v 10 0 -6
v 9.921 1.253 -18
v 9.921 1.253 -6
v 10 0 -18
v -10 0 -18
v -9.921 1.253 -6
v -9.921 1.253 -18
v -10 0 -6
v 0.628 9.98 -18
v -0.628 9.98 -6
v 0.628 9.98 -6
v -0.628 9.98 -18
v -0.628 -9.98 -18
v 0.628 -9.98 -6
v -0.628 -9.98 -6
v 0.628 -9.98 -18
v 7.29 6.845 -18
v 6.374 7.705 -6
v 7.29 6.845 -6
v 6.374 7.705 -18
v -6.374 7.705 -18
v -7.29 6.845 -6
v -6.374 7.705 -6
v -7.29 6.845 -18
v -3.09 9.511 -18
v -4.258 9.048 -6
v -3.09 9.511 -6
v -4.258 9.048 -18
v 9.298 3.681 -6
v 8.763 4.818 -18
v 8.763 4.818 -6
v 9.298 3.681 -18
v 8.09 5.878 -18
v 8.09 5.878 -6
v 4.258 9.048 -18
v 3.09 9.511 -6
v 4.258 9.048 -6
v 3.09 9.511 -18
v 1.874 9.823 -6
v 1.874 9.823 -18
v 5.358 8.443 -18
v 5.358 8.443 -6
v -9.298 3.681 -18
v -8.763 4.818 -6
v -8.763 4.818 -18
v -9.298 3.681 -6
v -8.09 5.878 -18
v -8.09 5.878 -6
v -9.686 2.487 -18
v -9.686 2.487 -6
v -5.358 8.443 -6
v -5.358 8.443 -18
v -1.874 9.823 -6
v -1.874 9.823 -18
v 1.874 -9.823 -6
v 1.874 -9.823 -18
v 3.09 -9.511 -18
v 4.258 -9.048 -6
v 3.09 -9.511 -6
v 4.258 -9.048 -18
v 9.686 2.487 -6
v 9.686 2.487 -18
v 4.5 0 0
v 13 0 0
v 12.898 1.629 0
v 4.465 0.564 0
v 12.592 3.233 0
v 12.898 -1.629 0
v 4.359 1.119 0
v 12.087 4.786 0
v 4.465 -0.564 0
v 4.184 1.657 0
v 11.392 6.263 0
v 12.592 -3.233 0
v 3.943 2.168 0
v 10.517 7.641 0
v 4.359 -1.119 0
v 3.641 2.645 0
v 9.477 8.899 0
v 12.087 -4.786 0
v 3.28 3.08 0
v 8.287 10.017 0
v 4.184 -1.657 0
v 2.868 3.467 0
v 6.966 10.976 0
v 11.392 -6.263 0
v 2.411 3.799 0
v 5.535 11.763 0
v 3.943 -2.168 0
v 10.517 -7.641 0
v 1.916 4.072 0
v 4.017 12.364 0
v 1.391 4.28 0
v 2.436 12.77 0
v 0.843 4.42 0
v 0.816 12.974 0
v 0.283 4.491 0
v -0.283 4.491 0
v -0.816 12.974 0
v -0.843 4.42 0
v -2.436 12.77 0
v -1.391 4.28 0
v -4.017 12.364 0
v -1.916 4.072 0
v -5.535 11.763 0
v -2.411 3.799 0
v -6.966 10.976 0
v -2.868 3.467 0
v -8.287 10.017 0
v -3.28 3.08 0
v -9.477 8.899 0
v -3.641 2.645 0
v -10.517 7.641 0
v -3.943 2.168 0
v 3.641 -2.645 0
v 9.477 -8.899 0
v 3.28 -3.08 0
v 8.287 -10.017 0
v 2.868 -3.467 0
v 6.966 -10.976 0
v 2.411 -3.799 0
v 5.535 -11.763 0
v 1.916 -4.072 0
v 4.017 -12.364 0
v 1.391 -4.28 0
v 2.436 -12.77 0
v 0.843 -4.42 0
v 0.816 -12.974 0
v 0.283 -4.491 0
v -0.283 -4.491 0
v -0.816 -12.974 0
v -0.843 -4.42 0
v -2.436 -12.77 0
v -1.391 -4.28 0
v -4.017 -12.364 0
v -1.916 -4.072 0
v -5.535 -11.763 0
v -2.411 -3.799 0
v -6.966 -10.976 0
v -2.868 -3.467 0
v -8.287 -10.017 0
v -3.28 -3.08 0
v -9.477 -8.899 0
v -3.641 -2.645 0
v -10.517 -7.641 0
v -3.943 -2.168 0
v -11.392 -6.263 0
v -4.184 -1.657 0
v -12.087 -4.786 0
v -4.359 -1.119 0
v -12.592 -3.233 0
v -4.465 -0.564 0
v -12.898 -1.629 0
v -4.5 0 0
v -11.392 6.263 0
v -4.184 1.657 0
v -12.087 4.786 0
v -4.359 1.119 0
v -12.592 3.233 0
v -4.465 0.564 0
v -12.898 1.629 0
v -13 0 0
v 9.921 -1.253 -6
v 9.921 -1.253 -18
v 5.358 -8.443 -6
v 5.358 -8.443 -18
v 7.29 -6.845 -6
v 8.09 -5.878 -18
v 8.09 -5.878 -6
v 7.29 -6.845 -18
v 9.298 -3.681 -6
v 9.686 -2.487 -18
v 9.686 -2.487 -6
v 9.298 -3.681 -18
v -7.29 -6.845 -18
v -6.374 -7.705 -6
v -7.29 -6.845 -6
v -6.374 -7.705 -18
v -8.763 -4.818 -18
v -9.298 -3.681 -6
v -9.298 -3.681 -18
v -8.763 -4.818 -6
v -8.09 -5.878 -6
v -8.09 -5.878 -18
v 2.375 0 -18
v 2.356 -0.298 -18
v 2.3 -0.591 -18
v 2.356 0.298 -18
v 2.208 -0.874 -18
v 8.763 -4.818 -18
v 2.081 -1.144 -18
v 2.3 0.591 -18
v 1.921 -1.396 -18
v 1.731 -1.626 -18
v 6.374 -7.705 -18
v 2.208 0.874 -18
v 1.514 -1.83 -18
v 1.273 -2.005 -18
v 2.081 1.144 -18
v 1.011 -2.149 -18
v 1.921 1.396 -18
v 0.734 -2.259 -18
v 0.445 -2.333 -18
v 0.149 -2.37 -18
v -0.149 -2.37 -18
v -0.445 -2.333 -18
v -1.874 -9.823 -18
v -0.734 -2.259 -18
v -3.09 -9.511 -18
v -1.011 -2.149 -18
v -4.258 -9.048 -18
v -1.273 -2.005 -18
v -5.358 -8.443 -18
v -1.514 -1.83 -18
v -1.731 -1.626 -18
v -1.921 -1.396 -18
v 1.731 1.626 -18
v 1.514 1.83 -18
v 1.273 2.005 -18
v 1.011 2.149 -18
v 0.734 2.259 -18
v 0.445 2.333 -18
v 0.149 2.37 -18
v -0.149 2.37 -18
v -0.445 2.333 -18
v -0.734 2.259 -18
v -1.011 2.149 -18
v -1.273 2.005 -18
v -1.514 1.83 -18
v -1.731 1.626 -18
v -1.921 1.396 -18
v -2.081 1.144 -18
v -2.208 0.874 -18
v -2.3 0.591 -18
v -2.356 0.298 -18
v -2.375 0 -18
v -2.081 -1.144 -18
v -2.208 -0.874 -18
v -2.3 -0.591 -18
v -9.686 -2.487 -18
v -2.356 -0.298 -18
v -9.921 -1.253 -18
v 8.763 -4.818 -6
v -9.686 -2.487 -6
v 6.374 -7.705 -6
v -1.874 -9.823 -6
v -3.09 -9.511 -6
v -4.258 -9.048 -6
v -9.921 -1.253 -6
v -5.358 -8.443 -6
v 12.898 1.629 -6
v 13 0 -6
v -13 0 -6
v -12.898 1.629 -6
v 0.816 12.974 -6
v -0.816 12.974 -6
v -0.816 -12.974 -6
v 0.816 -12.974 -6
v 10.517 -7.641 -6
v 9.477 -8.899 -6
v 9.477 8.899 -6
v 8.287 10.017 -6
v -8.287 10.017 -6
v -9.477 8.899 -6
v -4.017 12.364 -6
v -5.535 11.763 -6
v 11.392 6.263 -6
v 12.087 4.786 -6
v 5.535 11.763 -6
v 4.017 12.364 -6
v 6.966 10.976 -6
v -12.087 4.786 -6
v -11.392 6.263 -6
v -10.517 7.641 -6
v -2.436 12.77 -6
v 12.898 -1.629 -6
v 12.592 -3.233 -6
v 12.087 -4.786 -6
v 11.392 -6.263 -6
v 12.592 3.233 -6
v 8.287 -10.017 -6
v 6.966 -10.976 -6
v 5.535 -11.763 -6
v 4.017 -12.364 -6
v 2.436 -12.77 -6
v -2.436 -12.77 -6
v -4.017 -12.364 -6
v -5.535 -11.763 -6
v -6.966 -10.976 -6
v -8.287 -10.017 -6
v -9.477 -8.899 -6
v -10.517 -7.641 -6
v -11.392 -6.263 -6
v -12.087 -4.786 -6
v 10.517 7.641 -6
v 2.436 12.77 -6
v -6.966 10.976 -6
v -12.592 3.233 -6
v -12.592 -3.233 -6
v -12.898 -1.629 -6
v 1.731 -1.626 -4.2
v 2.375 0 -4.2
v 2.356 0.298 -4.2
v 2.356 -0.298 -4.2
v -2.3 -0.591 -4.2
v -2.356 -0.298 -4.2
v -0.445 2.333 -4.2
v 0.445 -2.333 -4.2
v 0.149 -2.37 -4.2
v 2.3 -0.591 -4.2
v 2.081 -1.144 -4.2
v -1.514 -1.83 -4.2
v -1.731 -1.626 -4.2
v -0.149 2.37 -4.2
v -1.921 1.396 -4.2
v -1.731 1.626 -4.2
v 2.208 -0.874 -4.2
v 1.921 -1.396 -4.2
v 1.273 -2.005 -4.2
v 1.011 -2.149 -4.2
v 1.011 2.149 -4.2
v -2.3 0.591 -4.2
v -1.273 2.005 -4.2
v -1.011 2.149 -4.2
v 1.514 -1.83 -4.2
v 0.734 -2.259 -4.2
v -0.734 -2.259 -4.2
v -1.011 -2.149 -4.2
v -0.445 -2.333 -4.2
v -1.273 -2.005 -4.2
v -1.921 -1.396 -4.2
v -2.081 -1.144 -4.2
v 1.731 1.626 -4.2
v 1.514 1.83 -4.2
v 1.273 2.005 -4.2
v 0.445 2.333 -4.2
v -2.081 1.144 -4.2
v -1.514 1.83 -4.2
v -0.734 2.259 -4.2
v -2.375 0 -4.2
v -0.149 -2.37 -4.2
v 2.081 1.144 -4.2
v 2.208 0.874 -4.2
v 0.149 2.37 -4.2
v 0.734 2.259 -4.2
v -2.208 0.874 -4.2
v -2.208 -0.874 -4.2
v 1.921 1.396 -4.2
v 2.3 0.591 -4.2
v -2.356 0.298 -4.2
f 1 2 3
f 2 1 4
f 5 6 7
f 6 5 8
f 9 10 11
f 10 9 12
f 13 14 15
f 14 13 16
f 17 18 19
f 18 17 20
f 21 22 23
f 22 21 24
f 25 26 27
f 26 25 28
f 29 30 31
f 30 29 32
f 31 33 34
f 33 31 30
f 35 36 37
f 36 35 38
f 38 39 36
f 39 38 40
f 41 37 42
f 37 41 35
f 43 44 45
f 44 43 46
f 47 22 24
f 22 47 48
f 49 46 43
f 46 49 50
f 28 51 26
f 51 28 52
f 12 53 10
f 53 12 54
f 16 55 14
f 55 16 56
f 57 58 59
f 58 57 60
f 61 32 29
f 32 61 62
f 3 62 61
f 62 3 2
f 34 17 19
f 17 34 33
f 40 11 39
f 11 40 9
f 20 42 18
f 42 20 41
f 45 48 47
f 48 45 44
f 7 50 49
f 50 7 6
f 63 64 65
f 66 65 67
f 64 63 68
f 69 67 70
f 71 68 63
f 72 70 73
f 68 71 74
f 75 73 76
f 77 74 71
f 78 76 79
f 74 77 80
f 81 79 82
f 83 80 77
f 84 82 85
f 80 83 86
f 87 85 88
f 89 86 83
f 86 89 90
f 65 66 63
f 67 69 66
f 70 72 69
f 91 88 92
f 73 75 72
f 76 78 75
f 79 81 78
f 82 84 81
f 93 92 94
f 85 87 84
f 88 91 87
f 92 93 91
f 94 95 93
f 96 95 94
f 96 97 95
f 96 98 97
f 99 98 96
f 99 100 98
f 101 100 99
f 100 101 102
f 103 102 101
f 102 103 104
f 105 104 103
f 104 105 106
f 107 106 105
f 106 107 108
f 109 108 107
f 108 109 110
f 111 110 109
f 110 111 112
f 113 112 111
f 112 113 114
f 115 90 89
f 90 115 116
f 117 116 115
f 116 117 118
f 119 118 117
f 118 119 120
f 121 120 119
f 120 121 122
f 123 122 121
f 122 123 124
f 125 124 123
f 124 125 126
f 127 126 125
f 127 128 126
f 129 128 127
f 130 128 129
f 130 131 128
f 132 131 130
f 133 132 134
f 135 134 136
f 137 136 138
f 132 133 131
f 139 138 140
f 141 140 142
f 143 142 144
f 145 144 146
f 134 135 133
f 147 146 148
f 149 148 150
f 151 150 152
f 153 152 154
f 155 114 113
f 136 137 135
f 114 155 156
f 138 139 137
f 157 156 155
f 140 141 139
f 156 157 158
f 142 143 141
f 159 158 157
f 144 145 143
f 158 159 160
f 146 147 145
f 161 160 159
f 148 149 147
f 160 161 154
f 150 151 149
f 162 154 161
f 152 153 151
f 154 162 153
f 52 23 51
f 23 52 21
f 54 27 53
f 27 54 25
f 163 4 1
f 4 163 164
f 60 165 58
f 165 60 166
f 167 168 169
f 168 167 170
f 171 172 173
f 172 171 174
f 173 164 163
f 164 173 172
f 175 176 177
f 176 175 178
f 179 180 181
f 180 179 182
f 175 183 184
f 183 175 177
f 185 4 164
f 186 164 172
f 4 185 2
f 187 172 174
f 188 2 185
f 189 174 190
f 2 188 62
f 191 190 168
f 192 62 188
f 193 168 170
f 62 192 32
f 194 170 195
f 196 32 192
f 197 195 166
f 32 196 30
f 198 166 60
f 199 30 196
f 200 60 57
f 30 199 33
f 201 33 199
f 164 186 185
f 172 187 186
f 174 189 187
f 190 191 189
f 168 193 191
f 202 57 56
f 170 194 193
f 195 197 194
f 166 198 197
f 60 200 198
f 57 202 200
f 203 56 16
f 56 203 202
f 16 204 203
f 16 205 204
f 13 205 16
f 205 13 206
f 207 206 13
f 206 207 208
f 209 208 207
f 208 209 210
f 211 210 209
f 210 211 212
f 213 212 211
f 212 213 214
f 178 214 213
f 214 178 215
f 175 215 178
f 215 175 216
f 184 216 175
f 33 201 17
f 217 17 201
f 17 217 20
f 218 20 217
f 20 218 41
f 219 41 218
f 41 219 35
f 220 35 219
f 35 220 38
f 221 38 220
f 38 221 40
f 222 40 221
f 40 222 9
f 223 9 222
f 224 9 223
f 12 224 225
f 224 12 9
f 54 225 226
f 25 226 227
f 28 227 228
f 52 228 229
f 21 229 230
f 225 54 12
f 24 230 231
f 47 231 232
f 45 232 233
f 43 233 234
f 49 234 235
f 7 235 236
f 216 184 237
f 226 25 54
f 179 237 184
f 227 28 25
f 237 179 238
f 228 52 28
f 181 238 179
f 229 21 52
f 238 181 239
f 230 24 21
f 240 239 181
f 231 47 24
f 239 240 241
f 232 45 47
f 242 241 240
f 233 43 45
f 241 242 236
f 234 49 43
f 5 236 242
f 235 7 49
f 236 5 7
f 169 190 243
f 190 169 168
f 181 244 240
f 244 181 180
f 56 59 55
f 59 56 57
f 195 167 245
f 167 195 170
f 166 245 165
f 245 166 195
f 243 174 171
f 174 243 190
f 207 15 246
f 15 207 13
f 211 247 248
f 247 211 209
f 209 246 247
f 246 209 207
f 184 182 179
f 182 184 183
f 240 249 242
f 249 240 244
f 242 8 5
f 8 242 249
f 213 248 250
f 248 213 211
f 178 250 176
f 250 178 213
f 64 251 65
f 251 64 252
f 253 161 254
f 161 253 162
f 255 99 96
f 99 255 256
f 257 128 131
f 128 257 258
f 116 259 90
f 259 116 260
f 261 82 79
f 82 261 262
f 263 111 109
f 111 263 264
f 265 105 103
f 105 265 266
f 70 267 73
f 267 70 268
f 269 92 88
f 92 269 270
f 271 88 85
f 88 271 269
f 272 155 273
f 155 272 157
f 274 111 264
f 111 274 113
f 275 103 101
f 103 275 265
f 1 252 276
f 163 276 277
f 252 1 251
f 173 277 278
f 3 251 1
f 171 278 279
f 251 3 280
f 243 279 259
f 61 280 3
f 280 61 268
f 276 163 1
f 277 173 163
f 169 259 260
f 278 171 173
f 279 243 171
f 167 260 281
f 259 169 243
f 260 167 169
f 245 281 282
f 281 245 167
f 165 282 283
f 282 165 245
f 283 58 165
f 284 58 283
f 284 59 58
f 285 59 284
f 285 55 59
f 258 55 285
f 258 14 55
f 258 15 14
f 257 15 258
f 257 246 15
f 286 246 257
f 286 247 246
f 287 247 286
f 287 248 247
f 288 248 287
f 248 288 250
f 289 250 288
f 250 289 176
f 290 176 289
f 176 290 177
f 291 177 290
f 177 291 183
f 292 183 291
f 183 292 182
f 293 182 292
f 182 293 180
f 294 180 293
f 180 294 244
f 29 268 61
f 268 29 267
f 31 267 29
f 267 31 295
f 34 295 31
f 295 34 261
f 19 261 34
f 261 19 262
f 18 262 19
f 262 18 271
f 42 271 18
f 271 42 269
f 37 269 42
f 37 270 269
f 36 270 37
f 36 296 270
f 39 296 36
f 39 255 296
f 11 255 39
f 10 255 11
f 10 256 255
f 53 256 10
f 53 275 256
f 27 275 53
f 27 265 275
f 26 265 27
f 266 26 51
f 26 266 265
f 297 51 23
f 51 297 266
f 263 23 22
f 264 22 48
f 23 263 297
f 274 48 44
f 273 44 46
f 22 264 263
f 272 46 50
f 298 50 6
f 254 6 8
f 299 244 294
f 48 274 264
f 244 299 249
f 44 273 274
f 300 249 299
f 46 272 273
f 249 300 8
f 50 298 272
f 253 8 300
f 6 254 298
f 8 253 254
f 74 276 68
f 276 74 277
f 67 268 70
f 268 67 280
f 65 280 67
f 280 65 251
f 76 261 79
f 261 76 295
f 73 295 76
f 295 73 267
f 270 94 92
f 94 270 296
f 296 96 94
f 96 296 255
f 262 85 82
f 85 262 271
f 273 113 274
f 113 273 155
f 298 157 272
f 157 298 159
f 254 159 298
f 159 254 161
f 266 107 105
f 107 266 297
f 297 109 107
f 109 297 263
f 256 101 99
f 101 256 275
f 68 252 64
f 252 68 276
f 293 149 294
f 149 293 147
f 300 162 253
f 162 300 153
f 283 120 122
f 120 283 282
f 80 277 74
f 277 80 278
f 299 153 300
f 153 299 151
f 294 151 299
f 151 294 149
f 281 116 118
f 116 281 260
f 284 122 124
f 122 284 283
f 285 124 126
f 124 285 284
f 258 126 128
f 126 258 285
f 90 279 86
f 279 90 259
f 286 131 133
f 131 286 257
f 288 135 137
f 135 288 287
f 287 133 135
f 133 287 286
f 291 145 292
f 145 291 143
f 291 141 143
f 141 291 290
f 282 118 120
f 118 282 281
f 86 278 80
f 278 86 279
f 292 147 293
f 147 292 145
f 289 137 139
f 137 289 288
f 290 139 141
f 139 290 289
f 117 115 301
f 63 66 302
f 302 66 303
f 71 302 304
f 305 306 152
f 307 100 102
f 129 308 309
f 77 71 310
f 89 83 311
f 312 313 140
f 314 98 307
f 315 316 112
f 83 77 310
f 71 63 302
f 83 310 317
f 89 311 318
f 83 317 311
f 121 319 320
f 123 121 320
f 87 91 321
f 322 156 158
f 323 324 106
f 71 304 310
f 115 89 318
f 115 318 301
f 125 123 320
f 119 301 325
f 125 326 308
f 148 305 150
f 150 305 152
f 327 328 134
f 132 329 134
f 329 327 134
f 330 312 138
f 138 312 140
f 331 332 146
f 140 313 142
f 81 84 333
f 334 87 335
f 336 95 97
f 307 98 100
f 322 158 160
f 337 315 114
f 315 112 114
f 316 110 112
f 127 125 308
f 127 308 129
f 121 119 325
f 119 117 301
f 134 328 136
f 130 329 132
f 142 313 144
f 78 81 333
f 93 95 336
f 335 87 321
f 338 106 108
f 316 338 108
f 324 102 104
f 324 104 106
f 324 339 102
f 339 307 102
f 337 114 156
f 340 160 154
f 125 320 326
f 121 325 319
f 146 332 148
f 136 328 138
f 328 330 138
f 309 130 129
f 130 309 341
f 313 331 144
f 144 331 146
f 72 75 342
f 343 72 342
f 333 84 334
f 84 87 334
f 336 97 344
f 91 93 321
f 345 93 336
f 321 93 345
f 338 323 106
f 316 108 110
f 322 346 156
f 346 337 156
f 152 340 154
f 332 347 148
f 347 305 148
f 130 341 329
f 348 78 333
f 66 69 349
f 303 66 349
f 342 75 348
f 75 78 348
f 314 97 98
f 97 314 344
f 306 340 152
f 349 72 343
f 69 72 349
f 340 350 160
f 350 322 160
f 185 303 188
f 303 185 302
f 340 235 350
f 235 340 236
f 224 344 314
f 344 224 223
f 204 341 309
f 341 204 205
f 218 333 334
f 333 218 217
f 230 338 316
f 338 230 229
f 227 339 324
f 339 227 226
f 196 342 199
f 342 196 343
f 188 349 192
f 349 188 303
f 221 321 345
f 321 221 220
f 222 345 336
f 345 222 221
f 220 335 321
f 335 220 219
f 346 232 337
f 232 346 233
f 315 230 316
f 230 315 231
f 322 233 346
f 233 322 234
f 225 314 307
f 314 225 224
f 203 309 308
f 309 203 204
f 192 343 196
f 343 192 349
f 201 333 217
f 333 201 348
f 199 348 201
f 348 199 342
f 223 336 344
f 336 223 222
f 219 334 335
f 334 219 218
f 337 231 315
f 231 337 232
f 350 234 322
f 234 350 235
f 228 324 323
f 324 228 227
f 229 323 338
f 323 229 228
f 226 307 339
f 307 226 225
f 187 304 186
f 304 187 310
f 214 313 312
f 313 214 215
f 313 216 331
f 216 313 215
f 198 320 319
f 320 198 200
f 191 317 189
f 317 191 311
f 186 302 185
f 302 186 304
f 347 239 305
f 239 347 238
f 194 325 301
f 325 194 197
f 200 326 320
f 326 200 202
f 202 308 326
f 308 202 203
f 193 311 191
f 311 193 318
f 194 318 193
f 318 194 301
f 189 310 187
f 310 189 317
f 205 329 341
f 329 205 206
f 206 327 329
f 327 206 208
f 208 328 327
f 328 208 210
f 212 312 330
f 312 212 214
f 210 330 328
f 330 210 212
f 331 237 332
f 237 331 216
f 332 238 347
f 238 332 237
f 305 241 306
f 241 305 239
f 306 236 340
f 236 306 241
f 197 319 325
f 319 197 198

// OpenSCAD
$fn = 50;


difference() {
	union() {
		translate(v = [0, 0, -18.0000000000]) {
			cylinder(h = 18, r = 10.0000000000);
		}
		translate(v = [0, 0, -6.0000000000]) {
			cylinder(h = 6, r = 13.0000000000);
		}
	}
	union() {
		translate(v = [0, 0, 0]) {
			rotate(a = [0, 0, 0]) {
				difference() {
					union() {
						#translate(v = [0, 0, -18.0000000000]) {
							cylinder(h = 18, r = 2.2500000000);
						}
						#translate(v = [0, 0, -4.2000000000]) {
							cylinder(h = 4.2000000000, r1 = 2.3750000000, r2 = 4.5000000000);
						}
						#translate(v = [0, 0, -18.0000000000]) {
							cylinder(h = 18, r = 2.3750000000);
						}
						#translate(v = [0, 0, -18.0000000000]) {
							cylinder(h = 18, r = 2.2500000000);
						}
					}
					union();
				}
			}
		}
	}
}
